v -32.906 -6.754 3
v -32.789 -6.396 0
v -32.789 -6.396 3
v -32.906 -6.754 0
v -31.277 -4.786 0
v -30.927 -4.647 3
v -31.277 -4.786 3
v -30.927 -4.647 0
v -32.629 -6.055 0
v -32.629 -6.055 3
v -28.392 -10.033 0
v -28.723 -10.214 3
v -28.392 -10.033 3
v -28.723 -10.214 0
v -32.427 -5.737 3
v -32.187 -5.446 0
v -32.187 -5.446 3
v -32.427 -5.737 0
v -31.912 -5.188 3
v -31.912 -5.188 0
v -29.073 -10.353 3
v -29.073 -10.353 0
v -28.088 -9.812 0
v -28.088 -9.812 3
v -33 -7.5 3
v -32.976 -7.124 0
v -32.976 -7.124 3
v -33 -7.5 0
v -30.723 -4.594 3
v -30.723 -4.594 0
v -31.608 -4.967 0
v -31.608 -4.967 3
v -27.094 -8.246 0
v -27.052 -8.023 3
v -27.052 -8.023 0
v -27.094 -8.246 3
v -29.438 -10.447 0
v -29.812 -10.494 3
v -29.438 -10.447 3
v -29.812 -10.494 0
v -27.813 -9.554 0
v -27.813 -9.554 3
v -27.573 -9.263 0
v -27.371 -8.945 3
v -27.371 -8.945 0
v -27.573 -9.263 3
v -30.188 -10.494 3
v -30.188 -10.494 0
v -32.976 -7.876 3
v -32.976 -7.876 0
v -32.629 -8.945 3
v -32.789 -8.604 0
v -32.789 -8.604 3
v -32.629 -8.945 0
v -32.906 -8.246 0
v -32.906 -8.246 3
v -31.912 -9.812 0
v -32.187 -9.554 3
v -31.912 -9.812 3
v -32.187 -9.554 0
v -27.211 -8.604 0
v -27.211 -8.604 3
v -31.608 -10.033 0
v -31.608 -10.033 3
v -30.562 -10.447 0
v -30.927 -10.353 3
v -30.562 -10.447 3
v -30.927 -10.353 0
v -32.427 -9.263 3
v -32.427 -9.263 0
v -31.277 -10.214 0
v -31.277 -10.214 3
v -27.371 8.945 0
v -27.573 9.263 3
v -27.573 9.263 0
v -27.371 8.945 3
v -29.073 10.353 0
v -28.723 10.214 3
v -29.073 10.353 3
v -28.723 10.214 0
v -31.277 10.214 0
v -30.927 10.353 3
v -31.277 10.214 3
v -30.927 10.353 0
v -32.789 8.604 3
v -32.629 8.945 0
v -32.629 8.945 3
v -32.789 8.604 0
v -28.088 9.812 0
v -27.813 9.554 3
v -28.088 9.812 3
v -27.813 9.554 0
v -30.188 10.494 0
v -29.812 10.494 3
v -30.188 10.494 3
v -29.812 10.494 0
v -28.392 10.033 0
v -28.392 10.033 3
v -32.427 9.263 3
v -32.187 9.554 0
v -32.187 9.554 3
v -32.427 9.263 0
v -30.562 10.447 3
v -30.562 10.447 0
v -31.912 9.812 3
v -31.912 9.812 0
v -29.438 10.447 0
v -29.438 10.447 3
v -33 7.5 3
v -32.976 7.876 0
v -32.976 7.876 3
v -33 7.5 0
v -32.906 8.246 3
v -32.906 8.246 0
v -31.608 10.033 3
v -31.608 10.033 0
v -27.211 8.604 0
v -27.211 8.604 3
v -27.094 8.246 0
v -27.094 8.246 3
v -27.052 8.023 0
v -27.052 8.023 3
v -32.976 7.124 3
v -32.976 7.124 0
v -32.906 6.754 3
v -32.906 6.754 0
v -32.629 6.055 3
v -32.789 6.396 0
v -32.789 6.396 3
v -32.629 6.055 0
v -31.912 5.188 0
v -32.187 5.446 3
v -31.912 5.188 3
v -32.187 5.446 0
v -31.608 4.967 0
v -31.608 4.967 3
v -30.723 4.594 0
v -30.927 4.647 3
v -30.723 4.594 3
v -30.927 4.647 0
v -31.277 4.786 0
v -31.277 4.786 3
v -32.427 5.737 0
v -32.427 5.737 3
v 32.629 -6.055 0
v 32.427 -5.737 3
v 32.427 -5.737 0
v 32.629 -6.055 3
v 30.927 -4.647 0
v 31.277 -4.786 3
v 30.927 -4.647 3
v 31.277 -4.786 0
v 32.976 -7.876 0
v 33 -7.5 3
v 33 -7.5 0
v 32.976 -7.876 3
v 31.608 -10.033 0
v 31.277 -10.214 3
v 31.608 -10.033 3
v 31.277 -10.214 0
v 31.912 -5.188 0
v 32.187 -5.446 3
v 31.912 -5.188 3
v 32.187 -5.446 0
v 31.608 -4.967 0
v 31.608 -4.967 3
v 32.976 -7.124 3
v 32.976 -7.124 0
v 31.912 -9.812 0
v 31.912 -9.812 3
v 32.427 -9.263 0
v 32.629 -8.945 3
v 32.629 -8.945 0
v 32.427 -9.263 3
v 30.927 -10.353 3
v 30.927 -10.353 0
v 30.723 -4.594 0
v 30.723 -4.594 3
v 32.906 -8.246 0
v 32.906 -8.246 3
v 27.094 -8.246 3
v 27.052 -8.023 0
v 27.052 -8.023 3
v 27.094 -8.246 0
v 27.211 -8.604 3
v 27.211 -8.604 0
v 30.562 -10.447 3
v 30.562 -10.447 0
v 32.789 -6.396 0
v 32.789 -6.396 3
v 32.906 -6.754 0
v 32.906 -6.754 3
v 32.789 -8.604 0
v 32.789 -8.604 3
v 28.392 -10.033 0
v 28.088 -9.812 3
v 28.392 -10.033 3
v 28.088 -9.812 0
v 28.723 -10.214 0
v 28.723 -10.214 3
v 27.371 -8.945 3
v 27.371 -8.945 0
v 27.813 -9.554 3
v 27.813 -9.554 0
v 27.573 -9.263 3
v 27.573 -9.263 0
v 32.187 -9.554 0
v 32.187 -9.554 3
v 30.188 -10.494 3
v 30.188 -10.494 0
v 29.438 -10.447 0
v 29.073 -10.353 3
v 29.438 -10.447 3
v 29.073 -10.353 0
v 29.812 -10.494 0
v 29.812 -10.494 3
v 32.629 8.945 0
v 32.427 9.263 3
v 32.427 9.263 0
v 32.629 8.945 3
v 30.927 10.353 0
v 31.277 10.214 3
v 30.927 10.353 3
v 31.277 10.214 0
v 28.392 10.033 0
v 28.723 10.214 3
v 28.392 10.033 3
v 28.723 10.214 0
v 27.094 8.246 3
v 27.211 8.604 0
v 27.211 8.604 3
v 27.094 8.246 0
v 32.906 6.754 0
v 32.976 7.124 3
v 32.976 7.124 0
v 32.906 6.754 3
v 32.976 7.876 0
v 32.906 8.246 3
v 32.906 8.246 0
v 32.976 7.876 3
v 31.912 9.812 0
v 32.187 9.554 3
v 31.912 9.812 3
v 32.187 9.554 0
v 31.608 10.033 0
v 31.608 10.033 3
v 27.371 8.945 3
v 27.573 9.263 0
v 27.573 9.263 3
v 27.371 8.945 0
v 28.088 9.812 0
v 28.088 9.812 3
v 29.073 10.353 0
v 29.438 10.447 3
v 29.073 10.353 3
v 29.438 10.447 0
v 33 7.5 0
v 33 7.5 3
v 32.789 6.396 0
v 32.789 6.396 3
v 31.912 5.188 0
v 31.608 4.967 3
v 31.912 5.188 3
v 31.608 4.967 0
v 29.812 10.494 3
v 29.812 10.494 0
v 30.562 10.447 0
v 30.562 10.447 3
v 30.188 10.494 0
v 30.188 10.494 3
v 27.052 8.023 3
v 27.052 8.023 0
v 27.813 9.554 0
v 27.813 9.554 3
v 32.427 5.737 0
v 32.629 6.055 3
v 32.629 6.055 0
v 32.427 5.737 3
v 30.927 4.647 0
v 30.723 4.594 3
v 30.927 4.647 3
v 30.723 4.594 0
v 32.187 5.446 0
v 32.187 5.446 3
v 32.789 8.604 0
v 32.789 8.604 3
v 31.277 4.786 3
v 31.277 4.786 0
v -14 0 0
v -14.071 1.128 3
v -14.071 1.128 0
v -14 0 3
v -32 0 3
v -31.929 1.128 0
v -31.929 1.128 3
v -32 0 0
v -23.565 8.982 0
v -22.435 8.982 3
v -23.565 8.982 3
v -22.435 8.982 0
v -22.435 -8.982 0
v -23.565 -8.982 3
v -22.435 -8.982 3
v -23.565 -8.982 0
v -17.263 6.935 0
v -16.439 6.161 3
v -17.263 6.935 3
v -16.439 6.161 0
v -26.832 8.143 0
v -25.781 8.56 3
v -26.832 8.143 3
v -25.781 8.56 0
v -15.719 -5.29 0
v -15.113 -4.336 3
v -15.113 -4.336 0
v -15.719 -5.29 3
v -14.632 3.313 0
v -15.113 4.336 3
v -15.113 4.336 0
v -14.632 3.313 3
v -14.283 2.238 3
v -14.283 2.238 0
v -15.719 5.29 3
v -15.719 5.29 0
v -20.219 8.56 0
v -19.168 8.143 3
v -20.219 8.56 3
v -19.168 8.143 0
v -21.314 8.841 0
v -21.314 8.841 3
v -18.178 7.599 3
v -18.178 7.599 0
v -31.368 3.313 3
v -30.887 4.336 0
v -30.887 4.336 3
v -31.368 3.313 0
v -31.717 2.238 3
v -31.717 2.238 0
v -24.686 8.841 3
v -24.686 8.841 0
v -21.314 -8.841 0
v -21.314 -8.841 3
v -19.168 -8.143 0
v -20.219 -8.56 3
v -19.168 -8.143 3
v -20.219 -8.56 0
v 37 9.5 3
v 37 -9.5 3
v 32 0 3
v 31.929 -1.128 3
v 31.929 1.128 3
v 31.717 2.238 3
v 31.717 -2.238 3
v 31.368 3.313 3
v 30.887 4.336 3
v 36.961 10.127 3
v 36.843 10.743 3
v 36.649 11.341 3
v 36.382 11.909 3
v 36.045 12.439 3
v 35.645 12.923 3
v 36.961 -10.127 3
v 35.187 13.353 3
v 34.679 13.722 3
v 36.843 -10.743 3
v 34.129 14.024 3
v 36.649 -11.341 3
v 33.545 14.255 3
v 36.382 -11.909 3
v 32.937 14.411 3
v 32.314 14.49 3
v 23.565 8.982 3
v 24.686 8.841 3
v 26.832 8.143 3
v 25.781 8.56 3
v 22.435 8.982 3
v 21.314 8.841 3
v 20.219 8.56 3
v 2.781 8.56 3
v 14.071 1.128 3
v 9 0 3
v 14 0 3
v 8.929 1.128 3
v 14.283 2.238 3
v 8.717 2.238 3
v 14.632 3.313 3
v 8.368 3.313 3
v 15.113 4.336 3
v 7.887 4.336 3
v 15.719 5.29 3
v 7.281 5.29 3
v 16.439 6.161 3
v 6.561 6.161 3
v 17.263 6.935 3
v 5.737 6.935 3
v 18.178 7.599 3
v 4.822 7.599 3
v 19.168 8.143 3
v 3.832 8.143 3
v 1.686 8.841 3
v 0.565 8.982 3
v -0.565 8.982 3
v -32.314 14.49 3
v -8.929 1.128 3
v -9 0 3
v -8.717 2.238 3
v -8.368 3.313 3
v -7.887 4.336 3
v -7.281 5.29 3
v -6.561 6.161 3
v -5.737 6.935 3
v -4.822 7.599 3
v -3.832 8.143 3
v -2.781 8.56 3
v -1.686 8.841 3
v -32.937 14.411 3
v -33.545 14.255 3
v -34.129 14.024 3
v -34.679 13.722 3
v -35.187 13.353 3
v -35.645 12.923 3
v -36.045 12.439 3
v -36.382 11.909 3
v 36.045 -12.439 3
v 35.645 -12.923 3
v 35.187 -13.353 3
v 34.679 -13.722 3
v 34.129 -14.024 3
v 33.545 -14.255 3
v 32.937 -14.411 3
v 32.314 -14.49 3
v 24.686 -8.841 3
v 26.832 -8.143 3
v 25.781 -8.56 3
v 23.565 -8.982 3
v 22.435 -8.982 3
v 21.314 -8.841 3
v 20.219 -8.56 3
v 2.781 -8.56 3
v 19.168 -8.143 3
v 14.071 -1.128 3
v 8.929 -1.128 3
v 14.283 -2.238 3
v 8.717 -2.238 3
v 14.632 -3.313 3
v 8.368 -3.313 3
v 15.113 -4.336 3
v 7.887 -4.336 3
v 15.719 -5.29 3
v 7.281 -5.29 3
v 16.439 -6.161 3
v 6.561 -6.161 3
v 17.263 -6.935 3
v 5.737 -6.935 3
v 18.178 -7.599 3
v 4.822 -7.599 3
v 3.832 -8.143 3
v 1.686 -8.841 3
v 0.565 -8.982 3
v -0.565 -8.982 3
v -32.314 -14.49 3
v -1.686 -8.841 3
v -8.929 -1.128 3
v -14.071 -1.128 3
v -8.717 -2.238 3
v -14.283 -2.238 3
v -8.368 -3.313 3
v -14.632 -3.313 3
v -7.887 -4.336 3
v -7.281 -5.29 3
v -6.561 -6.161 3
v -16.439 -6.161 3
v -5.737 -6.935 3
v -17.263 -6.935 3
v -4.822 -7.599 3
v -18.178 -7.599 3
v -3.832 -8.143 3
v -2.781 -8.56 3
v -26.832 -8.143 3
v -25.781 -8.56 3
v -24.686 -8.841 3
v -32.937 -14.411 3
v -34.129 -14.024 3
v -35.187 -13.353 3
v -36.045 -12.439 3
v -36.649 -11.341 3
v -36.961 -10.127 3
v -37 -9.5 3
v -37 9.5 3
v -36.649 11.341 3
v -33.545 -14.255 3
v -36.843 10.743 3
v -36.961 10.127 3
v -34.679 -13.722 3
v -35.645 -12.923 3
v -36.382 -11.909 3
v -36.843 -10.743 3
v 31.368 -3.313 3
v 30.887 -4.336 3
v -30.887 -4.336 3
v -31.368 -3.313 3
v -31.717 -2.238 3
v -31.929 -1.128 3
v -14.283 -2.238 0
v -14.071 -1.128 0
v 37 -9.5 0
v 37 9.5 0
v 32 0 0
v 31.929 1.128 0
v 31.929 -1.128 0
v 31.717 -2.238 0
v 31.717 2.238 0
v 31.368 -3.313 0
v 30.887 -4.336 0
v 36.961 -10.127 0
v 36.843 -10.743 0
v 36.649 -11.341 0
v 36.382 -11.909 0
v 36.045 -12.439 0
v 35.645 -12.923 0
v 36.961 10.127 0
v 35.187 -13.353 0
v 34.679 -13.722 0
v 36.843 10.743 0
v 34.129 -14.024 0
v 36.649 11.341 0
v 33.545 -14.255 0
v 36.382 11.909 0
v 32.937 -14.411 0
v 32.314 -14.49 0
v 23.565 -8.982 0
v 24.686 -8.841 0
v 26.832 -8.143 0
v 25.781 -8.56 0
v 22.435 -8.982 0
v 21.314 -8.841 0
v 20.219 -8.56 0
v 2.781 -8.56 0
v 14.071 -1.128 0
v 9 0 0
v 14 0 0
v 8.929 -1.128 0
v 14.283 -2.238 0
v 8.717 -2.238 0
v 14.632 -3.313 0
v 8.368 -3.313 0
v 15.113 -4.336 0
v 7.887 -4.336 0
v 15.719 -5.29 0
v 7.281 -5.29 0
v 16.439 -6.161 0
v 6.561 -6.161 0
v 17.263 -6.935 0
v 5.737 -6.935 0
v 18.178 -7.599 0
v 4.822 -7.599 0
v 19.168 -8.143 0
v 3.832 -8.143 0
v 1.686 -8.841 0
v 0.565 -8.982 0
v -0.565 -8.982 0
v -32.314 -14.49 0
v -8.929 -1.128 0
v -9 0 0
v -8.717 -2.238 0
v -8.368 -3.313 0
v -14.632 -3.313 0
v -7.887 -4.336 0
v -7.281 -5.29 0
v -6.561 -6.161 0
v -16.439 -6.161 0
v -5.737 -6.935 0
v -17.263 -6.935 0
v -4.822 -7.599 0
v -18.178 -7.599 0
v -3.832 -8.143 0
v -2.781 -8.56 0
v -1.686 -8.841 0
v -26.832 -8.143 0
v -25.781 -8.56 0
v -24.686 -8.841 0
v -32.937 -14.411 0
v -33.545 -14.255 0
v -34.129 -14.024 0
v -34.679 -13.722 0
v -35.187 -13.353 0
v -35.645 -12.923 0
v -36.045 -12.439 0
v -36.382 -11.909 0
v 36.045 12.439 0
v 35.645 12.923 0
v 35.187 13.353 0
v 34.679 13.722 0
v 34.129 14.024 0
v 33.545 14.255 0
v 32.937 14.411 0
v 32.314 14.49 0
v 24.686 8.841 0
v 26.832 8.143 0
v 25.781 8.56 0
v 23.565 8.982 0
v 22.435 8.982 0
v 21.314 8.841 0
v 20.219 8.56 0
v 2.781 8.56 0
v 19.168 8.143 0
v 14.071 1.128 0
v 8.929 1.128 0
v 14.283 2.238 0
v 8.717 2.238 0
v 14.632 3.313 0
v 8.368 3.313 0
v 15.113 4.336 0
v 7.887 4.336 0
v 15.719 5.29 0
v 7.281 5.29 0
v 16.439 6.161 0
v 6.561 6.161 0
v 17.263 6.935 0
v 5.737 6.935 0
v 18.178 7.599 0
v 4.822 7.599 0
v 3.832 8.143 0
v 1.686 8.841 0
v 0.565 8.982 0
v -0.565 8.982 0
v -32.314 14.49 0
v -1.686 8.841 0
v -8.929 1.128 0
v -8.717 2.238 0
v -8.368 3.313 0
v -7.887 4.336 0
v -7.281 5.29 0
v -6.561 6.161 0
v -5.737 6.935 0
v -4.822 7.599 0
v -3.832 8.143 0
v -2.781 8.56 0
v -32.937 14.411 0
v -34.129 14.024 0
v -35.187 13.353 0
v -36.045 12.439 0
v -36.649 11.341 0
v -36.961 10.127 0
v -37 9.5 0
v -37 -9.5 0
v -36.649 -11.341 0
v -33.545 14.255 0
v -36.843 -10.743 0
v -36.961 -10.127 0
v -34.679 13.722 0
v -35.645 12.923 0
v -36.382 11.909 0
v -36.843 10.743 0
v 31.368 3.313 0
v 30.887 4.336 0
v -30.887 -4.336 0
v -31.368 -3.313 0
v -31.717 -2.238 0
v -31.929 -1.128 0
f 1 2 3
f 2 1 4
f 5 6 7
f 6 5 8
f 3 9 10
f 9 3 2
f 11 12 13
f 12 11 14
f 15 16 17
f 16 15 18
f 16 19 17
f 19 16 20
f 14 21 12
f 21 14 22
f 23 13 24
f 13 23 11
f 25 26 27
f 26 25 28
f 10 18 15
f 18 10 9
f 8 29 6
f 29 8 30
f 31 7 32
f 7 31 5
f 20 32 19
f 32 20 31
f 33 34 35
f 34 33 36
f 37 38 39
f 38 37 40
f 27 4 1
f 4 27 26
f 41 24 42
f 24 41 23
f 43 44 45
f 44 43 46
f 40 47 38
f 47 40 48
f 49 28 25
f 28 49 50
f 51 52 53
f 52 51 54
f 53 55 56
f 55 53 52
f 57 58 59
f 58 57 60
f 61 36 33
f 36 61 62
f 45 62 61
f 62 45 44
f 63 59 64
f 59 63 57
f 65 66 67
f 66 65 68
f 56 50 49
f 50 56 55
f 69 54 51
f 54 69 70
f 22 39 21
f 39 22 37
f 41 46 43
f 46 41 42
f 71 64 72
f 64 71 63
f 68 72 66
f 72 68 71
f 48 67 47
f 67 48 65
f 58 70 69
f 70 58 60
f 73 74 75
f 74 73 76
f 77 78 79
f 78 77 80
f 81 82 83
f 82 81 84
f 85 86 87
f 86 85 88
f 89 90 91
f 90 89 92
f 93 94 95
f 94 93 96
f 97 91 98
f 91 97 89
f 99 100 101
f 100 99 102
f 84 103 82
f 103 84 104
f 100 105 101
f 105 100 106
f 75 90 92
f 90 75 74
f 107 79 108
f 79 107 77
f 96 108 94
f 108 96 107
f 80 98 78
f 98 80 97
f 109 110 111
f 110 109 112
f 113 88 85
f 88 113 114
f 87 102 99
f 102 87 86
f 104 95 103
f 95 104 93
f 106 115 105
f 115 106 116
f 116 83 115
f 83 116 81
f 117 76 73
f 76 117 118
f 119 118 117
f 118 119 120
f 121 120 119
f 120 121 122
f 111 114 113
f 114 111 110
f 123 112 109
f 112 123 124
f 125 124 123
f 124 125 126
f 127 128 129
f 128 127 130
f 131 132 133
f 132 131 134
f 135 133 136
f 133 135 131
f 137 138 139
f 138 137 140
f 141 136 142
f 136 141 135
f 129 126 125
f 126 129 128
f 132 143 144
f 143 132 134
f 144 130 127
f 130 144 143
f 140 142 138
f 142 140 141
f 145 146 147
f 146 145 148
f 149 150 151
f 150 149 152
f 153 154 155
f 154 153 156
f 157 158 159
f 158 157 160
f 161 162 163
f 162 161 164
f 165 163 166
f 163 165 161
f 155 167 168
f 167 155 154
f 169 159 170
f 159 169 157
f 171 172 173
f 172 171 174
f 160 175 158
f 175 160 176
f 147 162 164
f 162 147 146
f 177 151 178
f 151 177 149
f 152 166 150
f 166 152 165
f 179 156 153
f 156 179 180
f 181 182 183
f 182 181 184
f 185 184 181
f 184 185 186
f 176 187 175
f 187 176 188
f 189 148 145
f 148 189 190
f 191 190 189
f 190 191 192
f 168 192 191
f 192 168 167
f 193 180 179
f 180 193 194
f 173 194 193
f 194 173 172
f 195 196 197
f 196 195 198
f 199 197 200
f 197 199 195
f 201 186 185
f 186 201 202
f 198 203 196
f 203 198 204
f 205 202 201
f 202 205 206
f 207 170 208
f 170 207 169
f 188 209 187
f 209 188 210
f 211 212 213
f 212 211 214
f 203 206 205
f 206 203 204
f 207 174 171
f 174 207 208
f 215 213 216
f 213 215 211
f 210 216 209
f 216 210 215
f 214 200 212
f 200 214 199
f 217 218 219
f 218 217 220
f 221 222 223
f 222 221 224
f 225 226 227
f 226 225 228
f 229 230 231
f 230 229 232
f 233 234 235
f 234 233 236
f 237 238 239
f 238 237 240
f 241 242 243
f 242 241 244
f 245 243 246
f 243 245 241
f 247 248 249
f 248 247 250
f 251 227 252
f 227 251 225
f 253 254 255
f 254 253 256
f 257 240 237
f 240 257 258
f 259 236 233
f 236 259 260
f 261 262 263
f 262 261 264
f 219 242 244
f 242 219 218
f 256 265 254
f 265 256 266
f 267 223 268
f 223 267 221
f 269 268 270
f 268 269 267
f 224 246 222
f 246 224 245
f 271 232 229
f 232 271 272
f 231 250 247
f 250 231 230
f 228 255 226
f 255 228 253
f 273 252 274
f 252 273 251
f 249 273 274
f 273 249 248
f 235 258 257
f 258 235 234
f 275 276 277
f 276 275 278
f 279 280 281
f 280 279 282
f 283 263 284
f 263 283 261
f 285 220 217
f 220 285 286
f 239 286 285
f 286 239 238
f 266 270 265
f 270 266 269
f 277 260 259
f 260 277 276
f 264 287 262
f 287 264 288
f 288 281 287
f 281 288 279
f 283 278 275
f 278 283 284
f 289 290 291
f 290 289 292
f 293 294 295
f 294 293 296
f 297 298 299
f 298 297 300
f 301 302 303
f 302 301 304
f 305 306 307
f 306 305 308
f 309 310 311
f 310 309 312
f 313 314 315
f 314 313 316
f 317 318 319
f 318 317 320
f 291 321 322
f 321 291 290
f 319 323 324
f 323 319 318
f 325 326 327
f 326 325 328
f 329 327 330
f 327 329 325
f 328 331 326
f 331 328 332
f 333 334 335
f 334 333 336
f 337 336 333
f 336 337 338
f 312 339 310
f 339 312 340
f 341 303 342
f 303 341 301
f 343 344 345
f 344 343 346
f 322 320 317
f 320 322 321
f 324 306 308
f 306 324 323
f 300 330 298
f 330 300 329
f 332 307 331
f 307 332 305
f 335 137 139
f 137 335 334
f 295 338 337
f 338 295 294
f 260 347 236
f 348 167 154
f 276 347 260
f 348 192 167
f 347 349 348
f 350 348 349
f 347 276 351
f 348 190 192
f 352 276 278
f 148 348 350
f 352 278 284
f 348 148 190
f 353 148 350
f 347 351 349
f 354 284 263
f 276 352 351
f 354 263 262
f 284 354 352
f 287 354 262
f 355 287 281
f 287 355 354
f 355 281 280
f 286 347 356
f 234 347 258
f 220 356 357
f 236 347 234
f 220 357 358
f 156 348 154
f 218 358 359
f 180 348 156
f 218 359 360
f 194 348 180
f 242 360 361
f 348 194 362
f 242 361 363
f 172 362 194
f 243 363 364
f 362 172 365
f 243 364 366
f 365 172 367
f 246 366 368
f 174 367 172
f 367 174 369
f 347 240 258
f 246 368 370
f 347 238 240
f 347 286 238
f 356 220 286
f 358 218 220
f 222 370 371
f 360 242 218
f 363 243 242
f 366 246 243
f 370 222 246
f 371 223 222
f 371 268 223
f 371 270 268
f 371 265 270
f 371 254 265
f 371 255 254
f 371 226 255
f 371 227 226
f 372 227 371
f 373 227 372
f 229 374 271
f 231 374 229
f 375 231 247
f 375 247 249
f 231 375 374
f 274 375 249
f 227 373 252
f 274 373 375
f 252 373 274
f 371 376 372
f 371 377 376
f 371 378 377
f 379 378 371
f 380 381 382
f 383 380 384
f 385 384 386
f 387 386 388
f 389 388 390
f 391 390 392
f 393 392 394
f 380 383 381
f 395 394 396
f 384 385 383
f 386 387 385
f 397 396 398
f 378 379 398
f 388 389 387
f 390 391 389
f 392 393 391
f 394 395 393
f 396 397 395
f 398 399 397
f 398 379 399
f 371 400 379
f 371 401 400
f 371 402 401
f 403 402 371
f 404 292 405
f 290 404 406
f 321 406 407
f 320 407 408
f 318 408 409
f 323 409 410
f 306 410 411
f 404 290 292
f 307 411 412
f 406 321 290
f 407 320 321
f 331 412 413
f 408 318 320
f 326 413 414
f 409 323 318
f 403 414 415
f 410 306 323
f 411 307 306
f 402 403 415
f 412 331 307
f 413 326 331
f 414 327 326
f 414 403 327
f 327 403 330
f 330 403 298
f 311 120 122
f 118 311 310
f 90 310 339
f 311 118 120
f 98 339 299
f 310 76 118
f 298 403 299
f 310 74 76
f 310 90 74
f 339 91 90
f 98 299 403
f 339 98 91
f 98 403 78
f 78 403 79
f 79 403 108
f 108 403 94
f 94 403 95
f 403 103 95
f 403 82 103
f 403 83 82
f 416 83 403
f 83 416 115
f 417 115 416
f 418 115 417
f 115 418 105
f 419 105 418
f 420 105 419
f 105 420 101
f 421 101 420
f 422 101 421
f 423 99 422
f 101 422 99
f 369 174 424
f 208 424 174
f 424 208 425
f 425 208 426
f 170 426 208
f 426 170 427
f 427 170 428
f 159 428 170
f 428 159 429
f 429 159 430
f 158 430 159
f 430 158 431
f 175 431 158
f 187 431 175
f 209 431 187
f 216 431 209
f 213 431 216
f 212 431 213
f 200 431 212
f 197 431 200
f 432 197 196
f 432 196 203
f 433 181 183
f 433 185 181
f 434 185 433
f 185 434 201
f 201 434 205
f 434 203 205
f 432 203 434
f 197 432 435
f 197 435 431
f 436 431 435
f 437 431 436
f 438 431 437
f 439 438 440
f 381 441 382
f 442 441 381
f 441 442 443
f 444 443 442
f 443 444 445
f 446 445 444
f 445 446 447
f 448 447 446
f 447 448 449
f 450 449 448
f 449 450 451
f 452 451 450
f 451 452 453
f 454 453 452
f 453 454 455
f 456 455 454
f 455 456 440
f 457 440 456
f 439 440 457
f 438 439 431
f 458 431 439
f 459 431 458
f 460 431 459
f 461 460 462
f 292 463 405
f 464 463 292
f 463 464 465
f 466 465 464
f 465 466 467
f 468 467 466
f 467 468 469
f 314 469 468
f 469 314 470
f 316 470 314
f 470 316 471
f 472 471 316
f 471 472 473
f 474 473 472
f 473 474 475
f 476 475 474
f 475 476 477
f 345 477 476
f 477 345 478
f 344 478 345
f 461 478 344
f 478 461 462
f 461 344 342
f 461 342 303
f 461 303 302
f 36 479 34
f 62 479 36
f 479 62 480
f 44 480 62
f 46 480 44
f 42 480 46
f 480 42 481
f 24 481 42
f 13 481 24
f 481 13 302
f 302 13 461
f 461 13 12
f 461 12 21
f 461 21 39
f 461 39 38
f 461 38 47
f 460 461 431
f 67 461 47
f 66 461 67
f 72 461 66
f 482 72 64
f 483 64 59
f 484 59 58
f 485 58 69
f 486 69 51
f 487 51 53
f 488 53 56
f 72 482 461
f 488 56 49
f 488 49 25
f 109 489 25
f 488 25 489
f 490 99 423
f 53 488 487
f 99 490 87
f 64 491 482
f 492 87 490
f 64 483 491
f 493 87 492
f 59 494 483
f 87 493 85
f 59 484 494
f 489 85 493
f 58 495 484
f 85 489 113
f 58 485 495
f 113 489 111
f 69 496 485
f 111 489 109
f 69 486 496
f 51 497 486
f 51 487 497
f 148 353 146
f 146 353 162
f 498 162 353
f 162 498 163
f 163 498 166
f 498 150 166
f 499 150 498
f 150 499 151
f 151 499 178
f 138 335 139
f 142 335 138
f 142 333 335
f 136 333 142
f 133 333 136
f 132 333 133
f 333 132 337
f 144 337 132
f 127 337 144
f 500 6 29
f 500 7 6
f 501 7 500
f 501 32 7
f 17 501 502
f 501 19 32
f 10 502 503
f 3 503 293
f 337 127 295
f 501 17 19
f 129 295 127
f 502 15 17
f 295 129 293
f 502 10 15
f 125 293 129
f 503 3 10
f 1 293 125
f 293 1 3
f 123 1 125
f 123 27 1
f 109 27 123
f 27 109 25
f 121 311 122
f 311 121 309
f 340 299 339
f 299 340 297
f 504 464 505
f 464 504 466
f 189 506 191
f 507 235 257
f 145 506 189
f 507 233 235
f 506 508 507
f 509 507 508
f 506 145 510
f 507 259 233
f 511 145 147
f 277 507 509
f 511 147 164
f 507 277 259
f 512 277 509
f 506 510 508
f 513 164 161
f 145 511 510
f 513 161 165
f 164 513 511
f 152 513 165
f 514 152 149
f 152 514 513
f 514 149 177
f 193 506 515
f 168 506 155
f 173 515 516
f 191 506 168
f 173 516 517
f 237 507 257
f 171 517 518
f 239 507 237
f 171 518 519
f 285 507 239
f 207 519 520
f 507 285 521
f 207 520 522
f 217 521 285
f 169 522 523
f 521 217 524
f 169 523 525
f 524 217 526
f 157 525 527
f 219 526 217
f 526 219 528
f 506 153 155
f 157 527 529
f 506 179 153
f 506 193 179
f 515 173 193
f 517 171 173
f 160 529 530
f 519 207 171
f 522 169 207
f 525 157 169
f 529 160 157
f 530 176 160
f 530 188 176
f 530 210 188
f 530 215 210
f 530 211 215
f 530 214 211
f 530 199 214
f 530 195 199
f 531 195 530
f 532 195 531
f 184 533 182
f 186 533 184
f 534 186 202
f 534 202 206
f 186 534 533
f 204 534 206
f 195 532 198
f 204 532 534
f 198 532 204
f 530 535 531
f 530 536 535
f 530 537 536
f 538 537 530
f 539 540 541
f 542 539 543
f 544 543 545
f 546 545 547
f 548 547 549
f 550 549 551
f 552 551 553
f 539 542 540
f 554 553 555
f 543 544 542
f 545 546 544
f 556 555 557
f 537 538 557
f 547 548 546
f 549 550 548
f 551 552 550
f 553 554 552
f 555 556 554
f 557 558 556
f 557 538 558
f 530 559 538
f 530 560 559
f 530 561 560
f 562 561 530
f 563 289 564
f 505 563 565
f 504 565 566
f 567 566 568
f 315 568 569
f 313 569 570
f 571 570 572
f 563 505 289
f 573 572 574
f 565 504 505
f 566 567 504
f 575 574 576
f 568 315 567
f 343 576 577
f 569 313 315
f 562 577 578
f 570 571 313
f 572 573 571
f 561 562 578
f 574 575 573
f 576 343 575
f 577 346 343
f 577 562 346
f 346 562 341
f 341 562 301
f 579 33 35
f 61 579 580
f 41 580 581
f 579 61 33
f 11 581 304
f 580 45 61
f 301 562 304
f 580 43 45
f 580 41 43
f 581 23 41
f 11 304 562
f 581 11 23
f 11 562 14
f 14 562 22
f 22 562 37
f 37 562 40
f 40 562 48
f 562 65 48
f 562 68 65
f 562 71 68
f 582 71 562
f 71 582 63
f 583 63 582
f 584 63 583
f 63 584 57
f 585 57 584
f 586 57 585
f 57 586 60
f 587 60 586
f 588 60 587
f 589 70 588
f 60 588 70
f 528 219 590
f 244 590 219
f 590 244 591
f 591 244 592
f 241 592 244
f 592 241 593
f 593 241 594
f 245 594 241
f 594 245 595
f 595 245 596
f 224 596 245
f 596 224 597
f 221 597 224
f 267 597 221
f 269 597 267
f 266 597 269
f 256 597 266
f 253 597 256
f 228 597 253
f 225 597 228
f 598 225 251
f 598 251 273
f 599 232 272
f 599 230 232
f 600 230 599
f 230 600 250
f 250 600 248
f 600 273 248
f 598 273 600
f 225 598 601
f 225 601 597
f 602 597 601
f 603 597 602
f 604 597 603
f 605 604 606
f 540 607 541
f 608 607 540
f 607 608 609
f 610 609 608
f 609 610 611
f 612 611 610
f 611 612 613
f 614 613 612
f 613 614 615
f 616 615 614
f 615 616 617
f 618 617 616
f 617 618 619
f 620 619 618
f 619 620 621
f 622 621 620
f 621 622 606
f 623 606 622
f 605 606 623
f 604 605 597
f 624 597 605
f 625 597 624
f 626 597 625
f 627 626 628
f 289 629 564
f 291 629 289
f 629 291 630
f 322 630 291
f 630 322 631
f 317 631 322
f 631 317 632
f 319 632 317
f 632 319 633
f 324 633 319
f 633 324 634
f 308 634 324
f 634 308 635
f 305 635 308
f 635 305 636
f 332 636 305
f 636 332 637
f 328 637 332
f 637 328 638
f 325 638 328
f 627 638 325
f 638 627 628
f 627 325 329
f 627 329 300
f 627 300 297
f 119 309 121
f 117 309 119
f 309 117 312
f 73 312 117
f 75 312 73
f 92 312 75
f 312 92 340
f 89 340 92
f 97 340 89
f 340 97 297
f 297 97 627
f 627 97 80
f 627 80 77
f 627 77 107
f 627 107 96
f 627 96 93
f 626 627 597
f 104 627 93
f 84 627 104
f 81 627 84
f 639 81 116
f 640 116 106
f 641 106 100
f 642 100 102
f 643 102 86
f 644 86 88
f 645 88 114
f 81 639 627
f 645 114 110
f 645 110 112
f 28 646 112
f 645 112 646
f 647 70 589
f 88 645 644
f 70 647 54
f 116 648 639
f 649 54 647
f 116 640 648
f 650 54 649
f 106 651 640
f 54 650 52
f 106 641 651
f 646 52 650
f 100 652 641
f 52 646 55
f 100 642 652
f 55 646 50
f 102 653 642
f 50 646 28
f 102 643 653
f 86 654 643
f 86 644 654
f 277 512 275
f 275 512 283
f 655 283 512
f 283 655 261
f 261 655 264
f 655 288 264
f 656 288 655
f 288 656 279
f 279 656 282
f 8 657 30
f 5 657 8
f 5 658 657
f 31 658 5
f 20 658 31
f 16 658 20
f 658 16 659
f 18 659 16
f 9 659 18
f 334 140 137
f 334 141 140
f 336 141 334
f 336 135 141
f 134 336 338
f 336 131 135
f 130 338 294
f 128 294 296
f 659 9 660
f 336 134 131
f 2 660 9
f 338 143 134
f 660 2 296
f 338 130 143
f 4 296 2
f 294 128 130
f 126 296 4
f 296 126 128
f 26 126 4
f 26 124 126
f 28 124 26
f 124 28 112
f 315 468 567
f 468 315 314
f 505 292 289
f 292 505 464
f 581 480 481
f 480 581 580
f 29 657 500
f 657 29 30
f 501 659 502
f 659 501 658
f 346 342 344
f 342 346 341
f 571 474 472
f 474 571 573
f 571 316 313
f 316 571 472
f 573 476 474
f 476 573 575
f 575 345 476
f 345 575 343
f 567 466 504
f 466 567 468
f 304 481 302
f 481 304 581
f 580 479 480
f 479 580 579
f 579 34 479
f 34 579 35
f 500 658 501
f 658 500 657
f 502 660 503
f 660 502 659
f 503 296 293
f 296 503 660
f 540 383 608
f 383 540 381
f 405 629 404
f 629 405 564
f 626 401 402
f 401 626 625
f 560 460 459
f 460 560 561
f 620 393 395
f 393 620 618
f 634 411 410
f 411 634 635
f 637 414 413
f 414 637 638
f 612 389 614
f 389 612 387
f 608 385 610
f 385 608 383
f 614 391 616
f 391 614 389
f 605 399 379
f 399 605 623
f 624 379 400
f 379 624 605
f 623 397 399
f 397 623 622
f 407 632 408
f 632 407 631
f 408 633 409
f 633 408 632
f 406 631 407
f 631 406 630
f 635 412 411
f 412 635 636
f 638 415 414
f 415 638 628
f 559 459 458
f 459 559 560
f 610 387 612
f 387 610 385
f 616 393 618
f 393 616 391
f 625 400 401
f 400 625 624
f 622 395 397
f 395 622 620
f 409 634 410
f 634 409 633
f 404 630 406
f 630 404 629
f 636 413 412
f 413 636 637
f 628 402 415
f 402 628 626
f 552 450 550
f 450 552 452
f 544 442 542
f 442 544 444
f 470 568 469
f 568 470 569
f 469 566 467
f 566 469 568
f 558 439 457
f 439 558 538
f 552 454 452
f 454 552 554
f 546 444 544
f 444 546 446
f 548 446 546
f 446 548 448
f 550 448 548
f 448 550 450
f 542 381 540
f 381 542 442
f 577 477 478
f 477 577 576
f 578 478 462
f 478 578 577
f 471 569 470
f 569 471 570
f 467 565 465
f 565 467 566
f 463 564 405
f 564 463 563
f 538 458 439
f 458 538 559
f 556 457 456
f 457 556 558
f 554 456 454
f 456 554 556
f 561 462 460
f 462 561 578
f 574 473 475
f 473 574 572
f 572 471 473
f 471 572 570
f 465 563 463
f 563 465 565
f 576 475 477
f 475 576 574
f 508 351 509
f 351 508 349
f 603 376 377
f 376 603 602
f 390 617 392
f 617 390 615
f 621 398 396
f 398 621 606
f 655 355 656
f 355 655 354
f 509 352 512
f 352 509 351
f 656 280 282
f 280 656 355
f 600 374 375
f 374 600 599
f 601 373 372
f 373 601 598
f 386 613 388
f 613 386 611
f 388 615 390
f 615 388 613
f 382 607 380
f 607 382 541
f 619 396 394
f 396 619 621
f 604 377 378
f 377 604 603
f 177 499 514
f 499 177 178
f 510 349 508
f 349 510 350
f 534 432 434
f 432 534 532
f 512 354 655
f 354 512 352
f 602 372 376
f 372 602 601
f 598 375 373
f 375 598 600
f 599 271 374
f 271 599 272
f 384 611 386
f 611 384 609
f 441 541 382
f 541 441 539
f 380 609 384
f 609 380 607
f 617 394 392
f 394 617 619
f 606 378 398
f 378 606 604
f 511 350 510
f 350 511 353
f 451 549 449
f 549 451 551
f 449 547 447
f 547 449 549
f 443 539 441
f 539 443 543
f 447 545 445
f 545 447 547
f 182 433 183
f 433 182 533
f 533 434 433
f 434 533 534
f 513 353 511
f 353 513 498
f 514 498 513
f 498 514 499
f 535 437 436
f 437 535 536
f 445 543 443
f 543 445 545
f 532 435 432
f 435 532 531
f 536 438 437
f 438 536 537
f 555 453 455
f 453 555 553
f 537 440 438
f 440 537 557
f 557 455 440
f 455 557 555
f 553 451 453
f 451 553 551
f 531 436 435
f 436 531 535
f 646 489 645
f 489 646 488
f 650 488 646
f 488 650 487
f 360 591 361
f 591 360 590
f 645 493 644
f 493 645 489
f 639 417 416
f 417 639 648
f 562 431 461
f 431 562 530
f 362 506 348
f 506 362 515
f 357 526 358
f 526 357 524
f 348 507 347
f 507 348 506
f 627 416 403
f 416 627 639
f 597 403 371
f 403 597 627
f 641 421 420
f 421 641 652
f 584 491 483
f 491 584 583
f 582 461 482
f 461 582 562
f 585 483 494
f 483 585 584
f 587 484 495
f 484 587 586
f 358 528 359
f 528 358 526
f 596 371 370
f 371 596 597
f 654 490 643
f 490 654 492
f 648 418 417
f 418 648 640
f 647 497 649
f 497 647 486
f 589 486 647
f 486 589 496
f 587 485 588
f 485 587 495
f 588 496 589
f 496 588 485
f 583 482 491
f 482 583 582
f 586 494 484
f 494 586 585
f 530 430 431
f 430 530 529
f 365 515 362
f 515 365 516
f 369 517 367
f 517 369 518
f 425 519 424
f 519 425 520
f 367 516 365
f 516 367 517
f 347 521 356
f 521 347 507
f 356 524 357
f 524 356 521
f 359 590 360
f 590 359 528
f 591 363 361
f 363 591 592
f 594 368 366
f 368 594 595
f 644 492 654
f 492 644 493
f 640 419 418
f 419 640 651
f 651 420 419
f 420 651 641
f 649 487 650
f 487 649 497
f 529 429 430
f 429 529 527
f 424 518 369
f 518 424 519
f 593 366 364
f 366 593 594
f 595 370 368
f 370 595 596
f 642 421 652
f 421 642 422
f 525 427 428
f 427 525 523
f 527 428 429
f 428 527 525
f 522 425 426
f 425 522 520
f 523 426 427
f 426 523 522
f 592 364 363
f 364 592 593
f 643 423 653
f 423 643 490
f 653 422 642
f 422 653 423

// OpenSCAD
$fn = 50;


difference() {
	union() {
		hull() {
			translate(v = [-32.0000000000, 9.5000000000, 0]) {
				cylinder(h = 3, r = 5);
			}
			translate(v = [32.0000000000, 9.5000000000, 0]) {
				cylinder(h = 3, r = 5);
			}
			translate(v = [-32.0000000000, -9.5000000000, 0]) {
				cylinder(h = 3, r = 5);
			}
			translate(v = [32.0000000000, -9.5000000000, 0]) {
				cylinder(h = 3, r = 5);
			}
		}
	}
	union() {
		#translate(v = [-30.0000000000, -7.5000000000, -100.0000000000]) {
			cylinder(h = 200, r = 3.0000000000);
		}
		#translate(v = [-30.0000000000, 7.5000000000, -100.0000000000]) {
			cylinder(h = 200, r = 3.0000000000);
		}
		#translate(v = [30.0000000000, -7.5000000000, -100.0000000000]) {
			cylinder(h = 200, r = 3.0000000000);
		}
		#translate(v = [30.0000000000, 7.5000000000, -100.0000000000]) {
			cylinder(h = 200, r = 3.0000000000);
		}
		#translate(v = [-23.0000000000, 0, 0]) {
			cylinder(h = 3, r = 9.0000000000);
		}
		#cylinder(h = 3, r = 9.0000000000);
		#translate(v = [23.0000000000, 0, 0]) {
			cylinder(h = 3, r = 9.0000000000);
		}
	}
}
